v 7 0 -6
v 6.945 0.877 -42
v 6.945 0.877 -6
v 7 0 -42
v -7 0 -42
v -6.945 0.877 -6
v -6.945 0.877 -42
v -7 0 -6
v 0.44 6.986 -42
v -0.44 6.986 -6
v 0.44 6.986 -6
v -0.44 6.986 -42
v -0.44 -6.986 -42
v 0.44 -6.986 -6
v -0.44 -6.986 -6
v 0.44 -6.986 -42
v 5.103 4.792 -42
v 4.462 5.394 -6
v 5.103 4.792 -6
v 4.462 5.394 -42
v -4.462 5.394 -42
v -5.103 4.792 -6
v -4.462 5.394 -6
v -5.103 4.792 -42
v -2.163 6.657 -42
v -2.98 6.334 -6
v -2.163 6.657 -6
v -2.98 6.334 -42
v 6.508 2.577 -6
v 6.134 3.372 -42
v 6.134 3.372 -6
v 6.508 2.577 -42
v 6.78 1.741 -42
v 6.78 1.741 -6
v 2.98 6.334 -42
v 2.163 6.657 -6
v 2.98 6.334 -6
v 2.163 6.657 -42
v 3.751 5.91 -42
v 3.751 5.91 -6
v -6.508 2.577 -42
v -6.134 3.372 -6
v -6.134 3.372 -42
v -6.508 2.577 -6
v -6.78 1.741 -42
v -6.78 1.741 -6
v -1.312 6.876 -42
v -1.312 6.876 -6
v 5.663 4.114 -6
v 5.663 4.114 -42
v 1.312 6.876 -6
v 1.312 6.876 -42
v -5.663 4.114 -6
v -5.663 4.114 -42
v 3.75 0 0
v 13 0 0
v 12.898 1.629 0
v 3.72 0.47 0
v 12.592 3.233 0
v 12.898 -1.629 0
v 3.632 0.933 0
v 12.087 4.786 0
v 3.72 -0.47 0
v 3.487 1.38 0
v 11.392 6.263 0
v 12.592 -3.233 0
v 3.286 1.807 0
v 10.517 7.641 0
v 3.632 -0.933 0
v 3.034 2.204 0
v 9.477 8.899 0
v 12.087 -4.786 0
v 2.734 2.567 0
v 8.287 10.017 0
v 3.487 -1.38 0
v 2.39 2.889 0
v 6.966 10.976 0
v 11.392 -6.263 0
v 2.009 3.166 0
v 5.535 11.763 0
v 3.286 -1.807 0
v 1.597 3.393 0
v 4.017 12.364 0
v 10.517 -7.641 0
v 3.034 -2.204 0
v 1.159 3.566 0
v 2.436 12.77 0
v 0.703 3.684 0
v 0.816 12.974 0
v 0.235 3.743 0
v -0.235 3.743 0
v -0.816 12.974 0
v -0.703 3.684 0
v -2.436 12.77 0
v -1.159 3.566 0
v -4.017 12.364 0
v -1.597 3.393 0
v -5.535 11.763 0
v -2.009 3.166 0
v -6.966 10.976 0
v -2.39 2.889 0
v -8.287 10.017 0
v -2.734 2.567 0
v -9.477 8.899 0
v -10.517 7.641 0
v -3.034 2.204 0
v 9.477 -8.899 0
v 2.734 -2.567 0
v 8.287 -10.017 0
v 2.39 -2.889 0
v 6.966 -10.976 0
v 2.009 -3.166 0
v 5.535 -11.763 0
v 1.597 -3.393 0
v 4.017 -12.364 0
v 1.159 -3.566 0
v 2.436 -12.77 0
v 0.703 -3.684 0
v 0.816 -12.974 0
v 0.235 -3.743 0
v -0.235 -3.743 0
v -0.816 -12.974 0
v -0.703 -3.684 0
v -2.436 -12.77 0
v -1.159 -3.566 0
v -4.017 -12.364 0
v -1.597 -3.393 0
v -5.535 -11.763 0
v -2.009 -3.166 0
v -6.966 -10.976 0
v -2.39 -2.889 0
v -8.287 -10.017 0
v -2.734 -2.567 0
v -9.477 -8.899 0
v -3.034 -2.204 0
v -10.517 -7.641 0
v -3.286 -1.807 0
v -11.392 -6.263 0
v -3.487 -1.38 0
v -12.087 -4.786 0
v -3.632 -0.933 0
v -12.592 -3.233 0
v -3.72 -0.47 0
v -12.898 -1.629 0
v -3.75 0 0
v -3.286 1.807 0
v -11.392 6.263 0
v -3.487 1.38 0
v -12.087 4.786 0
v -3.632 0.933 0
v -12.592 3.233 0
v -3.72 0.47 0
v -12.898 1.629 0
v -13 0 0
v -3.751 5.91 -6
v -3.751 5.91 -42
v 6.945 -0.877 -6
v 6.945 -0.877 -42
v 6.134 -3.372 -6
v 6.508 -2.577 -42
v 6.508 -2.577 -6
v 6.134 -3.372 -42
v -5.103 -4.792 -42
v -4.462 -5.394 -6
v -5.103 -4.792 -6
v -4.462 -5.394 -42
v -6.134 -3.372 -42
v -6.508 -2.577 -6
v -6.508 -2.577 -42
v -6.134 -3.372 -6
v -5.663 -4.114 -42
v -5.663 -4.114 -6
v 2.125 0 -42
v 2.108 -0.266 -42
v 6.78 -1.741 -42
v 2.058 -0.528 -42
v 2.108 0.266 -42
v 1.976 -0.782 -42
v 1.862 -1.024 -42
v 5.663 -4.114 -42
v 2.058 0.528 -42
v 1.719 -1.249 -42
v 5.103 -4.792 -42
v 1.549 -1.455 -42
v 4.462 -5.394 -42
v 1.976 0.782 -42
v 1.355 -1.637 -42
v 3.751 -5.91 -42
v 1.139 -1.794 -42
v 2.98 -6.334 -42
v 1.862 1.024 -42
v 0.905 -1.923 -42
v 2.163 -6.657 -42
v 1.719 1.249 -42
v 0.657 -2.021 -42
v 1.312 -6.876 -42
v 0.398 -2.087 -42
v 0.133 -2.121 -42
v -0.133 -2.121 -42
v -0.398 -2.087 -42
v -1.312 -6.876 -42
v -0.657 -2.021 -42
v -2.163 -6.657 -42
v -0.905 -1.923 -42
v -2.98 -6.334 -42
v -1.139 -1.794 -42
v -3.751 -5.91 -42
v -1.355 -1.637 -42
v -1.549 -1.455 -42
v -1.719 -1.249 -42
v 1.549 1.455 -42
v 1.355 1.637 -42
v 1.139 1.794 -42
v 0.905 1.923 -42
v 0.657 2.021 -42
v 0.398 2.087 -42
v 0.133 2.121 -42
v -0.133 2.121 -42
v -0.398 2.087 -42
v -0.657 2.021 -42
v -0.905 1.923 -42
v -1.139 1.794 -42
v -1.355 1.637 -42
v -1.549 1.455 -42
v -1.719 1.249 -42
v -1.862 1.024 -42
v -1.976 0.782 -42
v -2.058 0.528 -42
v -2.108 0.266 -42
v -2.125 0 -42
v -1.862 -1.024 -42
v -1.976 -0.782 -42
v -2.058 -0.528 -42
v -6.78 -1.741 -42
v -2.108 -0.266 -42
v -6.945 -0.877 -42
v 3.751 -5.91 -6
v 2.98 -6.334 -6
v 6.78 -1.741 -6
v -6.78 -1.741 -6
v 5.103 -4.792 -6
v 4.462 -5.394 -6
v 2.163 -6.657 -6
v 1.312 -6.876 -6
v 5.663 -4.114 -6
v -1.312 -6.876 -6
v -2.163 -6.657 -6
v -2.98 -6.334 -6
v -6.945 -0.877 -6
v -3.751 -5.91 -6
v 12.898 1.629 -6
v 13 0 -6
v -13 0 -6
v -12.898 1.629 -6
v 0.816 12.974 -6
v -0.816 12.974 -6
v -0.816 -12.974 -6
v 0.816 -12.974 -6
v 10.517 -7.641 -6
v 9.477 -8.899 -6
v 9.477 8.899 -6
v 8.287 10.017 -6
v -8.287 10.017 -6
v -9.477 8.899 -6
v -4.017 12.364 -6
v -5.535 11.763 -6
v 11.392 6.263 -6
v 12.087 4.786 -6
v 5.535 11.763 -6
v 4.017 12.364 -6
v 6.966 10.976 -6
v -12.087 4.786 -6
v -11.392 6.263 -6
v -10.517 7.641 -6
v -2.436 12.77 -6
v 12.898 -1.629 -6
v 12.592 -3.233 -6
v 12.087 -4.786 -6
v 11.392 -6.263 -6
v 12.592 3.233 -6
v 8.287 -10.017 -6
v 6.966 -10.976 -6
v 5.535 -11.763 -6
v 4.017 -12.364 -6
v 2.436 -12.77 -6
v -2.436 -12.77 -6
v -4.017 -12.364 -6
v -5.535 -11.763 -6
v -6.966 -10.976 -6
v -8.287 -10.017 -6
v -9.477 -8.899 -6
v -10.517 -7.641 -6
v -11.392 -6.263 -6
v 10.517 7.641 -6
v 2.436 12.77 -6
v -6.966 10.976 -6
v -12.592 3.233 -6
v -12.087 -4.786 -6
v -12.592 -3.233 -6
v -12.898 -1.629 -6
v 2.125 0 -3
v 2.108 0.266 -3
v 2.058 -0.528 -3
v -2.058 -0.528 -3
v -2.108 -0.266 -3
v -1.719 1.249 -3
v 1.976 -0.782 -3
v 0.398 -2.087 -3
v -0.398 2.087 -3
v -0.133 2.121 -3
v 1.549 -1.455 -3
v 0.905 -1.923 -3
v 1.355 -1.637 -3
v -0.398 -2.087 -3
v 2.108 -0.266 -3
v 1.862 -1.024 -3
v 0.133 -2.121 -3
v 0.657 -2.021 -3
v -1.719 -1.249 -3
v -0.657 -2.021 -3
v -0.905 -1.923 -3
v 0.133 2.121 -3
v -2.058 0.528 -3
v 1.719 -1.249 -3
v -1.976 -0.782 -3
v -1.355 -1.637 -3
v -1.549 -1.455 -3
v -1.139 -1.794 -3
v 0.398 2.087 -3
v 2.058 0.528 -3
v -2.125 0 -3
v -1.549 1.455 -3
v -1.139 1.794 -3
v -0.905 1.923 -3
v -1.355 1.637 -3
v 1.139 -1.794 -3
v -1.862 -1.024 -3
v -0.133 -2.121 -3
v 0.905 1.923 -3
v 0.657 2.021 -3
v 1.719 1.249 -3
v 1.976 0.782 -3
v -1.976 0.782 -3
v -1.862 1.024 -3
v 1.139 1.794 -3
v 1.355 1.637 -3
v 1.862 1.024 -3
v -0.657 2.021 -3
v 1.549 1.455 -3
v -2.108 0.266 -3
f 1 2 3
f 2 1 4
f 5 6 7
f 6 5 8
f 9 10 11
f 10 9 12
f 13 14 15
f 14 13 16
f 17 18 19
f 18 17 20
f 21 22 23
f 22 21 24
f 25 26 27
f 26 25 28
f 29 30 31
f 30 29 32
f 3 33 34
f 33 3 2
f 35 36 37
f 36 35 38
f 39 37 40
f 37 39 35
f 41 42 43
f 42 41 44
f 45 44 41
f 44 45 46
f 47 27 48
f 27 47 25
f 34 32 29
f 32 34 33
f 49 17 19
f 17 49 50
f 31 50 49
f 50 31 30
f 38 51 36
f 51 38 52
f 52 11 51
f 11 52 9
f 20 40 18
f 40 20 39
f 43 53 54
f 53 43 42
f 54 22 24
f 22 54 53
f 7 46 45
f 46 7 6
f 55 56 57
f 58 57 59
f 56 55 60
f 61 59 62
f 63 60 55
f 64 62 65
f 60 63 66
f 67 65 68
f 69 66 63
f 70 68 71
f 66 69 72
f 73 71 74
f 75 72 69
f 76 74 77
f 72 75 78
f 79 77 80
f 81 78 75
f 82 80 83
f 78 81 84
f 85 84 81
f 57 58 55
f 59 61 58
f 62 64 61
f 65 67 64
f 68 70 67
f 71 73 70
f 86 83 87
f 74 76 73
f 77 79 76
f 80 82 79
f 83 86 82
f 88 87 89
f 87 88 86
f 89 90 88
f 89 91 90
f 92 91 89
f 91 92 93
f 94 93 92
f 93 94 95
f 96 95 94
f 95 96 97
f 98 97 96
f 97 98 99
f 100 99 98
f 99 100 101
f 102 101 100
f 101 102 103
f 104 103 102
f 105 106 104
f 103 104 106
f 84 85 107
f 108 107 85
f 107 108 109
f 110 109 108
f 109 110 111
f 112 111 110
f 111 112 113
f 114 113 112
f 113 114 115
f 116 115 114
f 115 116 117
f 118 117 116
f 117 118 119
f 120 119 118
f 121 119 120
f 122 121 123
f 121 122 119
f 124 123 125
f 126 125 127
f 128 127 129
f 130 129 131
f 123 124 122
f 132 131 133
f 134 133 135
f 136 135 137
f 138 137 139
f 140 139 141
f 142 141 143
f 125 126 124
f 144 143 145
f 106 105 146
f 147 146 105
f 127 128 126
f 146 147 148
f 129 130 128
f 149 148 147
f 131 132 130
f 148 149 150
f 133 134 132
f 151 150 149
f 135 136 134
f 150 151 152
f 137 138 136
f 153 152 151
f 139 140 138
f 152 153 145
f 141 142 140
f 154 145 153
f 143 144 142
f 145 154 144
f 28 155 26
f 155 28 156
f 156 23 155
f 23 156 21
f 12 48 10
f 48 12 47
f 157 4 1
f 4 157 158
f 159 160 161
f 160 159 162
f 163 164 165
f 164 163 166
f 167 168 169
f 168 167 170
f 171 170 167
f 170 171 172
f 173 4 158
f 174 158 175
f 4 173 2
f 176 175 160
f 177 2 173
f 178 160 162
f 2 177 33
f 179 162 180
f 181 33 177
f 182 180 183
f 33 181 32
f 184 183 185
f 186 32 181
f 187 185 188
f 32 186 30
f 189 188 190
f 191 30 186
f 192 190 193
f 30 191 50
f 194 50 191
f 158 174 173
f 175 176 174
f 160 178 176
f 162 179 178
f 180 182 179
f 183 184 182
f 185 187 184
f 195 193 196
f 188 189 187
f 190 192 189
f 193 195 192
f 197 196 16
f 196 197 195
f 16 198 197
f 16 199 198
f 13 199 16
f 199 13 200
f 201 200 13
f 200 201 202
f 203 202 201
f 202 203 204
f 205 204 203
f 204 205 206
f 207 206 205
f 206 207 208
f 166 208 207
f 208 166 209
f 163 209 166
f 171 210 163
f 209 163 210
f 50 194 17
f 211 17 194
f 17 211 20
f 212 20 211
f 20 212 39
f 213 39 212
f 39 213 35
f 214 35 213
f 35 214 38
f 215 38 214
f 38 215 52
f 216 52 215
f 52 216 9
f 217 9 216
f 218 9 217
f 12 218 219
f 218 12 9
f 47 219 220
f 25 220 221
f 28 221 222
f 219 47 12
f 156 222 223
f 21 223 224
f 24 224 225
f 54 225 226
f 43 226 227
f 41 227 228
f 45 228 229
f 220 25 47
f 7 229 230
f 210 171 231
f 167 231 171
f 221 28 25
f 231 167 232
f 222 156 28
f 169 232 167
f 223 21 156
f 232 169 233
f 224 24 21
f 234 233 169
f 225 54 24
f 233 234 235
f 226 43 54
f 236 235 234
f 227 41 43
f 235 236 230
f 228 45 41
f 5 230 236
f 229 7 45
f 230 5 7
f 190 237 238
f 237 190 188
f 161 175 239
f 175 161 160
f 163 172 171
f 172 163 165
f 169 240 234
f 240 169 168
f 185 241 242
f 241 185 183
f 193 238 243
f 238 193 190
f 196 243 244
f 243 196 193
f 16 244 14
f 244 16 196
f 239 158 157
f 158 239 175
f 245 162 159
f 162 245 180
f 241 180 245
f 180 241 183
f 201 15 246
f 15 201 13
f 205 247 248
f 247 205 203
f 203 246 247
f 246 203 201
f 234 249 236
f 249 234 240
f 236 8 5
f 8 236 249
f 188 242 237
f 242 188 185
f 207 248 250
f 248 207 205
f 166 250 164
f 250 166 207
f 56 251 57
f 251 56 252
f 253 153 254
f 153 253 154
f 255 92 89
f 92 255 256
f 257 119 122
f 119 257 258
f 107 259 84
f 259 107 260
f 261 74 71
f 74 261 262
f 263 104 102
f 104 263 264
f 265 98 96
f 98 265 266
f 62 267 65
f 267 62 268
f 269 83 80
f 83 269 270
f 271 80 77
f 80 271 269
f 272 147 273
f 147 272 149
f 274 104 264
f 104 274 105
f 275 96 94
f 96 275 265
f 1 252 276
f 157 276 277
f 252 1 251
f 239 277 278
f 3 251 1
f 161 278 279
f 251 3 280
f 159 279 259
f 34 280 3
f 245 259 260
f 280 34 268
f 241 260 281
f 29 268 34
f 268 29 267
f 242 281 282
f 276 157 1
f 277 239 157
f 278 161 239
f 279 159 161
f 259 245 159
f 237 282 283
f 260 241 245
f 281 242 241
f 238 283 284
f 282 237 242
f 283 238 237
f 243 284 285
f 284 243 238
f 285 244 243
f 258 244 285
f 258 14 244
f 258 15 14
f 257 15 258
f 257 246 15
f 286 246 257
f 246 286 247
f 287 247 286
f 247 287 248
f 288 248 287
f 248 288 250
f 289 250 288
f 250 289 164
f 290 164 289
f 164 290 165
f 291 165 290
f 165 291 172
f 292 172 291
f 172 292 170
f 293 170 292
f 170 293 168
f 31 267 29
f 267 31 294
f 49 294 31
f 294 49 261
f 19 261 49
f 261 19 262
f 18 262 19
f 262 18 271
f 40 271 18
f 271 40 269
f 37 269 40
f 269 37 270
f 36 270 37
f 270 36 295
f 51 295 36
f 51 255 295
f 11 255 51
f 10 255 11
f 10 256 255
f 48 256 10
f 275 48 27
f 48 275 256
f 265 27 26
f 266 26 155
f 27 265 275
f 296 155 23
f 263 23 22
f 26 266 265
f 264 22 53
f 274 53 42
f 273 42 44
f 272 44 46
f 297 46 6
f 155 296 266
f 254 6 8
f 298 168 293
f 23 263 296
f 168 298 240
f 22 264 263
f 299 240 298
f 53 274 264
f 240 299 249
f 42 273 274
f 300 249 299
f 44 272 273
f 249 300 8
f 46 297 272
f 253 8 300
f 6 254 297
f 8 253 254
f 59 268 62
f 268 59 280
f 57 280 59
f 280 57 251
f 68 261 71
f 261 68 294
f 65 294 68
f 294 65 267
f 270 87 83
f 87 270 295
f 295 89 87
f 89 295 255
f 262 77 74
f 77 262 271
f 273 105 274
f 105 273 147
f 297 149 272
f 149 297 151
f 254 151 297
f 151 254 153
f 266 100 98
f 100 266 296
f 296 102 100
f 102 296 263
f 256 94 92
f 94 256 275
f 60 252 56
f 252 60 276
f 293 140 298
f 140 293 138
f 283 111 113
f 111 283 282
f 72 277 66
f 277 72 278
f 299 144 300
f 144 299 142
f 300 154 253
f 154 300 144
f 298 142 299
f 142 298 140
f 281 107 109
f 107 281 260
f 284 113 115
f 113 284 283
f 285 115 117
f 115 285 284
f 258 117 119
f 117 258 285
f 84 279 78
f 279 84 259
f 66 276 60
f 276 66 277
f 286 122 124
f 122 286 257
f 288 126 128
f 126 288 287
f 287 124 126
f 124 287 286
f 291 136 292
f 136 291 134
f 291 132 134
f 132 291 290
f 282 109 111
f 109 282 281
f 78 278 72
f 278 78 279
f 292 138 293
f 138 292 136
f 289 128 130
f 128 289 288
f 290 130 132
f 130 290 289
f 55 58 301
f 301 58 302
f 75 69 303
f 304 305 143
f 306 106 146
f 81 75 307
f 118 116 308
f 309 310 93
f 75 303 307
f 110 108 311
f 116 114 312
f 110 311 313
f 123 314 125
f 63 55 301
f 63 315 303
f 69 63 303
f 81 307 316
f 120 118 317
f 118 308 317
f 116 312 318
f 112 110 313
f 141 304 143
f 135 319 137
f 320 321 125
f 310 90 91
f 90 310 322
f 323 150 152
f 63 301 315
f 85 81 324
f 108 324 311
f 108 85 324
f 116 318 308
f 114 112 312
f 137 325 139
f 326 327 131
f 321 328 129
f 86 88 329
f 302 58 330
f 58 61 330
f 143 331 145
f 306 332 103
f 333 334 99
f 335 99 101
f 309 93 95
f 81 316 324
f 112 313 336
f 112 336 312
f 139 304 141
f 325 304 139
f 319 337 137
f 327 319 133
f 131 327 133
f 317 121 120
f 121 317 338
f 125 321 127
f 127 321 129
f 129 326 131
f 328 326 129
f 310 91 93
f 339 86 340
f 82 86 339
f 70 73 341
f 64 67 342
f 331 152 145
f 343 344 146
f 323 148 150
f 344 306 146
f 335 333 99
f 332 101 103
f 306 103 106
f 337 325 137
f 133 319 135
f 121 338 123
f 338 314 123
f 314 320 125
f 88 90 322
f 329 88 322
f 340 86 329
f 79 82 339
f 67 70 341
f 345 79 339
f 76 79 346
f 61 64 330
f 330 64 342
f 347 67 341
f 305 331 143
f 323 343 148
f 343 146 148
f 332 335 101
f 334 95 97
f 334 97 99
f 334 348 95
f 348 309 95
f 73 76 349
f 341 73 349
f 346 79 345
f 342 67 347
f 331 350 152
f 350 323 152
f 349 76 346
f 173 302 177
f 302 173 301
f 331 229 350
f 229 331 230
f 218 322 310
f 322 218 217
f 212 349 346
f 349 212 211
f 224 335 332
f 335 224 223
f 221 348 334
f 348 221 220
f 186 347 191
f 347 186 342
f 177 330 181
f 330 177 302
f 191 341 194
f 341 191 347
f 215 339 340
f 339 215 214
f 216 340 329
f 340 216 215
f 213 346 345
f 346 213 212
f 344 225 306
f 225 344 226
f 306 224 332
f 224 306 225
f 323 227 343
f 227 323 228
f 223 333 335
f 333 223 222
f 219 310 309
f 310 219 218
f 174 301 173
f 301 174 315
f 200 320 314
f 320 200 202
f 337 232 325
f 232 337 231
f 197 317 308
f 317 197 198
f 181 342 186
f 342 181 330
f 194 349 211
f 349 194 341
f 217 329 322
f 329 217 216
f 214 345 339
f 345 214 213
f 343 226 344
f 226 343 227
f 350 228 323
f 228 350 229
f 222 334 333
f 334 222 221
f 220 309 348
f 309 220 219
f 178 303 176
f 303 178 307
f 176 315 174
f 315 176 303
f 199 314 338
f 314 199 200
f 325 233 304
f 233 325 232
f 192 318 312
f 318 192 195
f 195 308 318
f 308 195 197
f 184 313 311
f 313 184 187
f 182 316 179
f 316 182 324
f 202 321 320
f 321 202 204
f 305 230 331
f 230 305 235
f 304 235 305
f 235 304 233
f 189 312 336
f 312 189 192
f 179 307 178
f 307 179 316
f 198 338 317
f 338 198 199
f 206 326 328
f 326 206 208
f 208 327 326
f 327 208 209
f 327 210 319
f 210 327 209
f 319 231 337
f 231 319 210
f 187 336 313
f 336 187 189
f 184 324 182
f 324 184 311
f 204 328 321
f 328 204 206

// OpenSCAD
$fn = 50;


difference() {
	union() {
		translate(v = [0, 0, -42.0000000000]) {
			cylinder(h = 42, r = 7.0000000000);
		}
		translate(v = [0, 0, -6.0000000000]) {
			cylinder(h = 6, r = 13.0000000000);
		}
	}
	union() {
		translate(v = [0, 0, 0]) {
			rotate(a = [0, 0, 0]) {
				difference() {
					union() {
						#translate(v = [0, 0, -42.0000000000]) {
							cylinder(h = 42, r = 2.0000000000);
						}
						#translate(v = [0, 0, -3]) {
							cylinder(h = 3, r1 = 2.1250000000, r2 = 3.7500000000);
						}
						#translate(v = [0, 0, -42.0000000000]) {
							cylinder(h = 42, r = 2.1250000000);
						}
						#translate(v = [0, 0, -42.0000000000]) {
							cylinder(h = 42, r = 2.0000000000);
						}
					}
					union();
				}
			}
		}
	}
}
